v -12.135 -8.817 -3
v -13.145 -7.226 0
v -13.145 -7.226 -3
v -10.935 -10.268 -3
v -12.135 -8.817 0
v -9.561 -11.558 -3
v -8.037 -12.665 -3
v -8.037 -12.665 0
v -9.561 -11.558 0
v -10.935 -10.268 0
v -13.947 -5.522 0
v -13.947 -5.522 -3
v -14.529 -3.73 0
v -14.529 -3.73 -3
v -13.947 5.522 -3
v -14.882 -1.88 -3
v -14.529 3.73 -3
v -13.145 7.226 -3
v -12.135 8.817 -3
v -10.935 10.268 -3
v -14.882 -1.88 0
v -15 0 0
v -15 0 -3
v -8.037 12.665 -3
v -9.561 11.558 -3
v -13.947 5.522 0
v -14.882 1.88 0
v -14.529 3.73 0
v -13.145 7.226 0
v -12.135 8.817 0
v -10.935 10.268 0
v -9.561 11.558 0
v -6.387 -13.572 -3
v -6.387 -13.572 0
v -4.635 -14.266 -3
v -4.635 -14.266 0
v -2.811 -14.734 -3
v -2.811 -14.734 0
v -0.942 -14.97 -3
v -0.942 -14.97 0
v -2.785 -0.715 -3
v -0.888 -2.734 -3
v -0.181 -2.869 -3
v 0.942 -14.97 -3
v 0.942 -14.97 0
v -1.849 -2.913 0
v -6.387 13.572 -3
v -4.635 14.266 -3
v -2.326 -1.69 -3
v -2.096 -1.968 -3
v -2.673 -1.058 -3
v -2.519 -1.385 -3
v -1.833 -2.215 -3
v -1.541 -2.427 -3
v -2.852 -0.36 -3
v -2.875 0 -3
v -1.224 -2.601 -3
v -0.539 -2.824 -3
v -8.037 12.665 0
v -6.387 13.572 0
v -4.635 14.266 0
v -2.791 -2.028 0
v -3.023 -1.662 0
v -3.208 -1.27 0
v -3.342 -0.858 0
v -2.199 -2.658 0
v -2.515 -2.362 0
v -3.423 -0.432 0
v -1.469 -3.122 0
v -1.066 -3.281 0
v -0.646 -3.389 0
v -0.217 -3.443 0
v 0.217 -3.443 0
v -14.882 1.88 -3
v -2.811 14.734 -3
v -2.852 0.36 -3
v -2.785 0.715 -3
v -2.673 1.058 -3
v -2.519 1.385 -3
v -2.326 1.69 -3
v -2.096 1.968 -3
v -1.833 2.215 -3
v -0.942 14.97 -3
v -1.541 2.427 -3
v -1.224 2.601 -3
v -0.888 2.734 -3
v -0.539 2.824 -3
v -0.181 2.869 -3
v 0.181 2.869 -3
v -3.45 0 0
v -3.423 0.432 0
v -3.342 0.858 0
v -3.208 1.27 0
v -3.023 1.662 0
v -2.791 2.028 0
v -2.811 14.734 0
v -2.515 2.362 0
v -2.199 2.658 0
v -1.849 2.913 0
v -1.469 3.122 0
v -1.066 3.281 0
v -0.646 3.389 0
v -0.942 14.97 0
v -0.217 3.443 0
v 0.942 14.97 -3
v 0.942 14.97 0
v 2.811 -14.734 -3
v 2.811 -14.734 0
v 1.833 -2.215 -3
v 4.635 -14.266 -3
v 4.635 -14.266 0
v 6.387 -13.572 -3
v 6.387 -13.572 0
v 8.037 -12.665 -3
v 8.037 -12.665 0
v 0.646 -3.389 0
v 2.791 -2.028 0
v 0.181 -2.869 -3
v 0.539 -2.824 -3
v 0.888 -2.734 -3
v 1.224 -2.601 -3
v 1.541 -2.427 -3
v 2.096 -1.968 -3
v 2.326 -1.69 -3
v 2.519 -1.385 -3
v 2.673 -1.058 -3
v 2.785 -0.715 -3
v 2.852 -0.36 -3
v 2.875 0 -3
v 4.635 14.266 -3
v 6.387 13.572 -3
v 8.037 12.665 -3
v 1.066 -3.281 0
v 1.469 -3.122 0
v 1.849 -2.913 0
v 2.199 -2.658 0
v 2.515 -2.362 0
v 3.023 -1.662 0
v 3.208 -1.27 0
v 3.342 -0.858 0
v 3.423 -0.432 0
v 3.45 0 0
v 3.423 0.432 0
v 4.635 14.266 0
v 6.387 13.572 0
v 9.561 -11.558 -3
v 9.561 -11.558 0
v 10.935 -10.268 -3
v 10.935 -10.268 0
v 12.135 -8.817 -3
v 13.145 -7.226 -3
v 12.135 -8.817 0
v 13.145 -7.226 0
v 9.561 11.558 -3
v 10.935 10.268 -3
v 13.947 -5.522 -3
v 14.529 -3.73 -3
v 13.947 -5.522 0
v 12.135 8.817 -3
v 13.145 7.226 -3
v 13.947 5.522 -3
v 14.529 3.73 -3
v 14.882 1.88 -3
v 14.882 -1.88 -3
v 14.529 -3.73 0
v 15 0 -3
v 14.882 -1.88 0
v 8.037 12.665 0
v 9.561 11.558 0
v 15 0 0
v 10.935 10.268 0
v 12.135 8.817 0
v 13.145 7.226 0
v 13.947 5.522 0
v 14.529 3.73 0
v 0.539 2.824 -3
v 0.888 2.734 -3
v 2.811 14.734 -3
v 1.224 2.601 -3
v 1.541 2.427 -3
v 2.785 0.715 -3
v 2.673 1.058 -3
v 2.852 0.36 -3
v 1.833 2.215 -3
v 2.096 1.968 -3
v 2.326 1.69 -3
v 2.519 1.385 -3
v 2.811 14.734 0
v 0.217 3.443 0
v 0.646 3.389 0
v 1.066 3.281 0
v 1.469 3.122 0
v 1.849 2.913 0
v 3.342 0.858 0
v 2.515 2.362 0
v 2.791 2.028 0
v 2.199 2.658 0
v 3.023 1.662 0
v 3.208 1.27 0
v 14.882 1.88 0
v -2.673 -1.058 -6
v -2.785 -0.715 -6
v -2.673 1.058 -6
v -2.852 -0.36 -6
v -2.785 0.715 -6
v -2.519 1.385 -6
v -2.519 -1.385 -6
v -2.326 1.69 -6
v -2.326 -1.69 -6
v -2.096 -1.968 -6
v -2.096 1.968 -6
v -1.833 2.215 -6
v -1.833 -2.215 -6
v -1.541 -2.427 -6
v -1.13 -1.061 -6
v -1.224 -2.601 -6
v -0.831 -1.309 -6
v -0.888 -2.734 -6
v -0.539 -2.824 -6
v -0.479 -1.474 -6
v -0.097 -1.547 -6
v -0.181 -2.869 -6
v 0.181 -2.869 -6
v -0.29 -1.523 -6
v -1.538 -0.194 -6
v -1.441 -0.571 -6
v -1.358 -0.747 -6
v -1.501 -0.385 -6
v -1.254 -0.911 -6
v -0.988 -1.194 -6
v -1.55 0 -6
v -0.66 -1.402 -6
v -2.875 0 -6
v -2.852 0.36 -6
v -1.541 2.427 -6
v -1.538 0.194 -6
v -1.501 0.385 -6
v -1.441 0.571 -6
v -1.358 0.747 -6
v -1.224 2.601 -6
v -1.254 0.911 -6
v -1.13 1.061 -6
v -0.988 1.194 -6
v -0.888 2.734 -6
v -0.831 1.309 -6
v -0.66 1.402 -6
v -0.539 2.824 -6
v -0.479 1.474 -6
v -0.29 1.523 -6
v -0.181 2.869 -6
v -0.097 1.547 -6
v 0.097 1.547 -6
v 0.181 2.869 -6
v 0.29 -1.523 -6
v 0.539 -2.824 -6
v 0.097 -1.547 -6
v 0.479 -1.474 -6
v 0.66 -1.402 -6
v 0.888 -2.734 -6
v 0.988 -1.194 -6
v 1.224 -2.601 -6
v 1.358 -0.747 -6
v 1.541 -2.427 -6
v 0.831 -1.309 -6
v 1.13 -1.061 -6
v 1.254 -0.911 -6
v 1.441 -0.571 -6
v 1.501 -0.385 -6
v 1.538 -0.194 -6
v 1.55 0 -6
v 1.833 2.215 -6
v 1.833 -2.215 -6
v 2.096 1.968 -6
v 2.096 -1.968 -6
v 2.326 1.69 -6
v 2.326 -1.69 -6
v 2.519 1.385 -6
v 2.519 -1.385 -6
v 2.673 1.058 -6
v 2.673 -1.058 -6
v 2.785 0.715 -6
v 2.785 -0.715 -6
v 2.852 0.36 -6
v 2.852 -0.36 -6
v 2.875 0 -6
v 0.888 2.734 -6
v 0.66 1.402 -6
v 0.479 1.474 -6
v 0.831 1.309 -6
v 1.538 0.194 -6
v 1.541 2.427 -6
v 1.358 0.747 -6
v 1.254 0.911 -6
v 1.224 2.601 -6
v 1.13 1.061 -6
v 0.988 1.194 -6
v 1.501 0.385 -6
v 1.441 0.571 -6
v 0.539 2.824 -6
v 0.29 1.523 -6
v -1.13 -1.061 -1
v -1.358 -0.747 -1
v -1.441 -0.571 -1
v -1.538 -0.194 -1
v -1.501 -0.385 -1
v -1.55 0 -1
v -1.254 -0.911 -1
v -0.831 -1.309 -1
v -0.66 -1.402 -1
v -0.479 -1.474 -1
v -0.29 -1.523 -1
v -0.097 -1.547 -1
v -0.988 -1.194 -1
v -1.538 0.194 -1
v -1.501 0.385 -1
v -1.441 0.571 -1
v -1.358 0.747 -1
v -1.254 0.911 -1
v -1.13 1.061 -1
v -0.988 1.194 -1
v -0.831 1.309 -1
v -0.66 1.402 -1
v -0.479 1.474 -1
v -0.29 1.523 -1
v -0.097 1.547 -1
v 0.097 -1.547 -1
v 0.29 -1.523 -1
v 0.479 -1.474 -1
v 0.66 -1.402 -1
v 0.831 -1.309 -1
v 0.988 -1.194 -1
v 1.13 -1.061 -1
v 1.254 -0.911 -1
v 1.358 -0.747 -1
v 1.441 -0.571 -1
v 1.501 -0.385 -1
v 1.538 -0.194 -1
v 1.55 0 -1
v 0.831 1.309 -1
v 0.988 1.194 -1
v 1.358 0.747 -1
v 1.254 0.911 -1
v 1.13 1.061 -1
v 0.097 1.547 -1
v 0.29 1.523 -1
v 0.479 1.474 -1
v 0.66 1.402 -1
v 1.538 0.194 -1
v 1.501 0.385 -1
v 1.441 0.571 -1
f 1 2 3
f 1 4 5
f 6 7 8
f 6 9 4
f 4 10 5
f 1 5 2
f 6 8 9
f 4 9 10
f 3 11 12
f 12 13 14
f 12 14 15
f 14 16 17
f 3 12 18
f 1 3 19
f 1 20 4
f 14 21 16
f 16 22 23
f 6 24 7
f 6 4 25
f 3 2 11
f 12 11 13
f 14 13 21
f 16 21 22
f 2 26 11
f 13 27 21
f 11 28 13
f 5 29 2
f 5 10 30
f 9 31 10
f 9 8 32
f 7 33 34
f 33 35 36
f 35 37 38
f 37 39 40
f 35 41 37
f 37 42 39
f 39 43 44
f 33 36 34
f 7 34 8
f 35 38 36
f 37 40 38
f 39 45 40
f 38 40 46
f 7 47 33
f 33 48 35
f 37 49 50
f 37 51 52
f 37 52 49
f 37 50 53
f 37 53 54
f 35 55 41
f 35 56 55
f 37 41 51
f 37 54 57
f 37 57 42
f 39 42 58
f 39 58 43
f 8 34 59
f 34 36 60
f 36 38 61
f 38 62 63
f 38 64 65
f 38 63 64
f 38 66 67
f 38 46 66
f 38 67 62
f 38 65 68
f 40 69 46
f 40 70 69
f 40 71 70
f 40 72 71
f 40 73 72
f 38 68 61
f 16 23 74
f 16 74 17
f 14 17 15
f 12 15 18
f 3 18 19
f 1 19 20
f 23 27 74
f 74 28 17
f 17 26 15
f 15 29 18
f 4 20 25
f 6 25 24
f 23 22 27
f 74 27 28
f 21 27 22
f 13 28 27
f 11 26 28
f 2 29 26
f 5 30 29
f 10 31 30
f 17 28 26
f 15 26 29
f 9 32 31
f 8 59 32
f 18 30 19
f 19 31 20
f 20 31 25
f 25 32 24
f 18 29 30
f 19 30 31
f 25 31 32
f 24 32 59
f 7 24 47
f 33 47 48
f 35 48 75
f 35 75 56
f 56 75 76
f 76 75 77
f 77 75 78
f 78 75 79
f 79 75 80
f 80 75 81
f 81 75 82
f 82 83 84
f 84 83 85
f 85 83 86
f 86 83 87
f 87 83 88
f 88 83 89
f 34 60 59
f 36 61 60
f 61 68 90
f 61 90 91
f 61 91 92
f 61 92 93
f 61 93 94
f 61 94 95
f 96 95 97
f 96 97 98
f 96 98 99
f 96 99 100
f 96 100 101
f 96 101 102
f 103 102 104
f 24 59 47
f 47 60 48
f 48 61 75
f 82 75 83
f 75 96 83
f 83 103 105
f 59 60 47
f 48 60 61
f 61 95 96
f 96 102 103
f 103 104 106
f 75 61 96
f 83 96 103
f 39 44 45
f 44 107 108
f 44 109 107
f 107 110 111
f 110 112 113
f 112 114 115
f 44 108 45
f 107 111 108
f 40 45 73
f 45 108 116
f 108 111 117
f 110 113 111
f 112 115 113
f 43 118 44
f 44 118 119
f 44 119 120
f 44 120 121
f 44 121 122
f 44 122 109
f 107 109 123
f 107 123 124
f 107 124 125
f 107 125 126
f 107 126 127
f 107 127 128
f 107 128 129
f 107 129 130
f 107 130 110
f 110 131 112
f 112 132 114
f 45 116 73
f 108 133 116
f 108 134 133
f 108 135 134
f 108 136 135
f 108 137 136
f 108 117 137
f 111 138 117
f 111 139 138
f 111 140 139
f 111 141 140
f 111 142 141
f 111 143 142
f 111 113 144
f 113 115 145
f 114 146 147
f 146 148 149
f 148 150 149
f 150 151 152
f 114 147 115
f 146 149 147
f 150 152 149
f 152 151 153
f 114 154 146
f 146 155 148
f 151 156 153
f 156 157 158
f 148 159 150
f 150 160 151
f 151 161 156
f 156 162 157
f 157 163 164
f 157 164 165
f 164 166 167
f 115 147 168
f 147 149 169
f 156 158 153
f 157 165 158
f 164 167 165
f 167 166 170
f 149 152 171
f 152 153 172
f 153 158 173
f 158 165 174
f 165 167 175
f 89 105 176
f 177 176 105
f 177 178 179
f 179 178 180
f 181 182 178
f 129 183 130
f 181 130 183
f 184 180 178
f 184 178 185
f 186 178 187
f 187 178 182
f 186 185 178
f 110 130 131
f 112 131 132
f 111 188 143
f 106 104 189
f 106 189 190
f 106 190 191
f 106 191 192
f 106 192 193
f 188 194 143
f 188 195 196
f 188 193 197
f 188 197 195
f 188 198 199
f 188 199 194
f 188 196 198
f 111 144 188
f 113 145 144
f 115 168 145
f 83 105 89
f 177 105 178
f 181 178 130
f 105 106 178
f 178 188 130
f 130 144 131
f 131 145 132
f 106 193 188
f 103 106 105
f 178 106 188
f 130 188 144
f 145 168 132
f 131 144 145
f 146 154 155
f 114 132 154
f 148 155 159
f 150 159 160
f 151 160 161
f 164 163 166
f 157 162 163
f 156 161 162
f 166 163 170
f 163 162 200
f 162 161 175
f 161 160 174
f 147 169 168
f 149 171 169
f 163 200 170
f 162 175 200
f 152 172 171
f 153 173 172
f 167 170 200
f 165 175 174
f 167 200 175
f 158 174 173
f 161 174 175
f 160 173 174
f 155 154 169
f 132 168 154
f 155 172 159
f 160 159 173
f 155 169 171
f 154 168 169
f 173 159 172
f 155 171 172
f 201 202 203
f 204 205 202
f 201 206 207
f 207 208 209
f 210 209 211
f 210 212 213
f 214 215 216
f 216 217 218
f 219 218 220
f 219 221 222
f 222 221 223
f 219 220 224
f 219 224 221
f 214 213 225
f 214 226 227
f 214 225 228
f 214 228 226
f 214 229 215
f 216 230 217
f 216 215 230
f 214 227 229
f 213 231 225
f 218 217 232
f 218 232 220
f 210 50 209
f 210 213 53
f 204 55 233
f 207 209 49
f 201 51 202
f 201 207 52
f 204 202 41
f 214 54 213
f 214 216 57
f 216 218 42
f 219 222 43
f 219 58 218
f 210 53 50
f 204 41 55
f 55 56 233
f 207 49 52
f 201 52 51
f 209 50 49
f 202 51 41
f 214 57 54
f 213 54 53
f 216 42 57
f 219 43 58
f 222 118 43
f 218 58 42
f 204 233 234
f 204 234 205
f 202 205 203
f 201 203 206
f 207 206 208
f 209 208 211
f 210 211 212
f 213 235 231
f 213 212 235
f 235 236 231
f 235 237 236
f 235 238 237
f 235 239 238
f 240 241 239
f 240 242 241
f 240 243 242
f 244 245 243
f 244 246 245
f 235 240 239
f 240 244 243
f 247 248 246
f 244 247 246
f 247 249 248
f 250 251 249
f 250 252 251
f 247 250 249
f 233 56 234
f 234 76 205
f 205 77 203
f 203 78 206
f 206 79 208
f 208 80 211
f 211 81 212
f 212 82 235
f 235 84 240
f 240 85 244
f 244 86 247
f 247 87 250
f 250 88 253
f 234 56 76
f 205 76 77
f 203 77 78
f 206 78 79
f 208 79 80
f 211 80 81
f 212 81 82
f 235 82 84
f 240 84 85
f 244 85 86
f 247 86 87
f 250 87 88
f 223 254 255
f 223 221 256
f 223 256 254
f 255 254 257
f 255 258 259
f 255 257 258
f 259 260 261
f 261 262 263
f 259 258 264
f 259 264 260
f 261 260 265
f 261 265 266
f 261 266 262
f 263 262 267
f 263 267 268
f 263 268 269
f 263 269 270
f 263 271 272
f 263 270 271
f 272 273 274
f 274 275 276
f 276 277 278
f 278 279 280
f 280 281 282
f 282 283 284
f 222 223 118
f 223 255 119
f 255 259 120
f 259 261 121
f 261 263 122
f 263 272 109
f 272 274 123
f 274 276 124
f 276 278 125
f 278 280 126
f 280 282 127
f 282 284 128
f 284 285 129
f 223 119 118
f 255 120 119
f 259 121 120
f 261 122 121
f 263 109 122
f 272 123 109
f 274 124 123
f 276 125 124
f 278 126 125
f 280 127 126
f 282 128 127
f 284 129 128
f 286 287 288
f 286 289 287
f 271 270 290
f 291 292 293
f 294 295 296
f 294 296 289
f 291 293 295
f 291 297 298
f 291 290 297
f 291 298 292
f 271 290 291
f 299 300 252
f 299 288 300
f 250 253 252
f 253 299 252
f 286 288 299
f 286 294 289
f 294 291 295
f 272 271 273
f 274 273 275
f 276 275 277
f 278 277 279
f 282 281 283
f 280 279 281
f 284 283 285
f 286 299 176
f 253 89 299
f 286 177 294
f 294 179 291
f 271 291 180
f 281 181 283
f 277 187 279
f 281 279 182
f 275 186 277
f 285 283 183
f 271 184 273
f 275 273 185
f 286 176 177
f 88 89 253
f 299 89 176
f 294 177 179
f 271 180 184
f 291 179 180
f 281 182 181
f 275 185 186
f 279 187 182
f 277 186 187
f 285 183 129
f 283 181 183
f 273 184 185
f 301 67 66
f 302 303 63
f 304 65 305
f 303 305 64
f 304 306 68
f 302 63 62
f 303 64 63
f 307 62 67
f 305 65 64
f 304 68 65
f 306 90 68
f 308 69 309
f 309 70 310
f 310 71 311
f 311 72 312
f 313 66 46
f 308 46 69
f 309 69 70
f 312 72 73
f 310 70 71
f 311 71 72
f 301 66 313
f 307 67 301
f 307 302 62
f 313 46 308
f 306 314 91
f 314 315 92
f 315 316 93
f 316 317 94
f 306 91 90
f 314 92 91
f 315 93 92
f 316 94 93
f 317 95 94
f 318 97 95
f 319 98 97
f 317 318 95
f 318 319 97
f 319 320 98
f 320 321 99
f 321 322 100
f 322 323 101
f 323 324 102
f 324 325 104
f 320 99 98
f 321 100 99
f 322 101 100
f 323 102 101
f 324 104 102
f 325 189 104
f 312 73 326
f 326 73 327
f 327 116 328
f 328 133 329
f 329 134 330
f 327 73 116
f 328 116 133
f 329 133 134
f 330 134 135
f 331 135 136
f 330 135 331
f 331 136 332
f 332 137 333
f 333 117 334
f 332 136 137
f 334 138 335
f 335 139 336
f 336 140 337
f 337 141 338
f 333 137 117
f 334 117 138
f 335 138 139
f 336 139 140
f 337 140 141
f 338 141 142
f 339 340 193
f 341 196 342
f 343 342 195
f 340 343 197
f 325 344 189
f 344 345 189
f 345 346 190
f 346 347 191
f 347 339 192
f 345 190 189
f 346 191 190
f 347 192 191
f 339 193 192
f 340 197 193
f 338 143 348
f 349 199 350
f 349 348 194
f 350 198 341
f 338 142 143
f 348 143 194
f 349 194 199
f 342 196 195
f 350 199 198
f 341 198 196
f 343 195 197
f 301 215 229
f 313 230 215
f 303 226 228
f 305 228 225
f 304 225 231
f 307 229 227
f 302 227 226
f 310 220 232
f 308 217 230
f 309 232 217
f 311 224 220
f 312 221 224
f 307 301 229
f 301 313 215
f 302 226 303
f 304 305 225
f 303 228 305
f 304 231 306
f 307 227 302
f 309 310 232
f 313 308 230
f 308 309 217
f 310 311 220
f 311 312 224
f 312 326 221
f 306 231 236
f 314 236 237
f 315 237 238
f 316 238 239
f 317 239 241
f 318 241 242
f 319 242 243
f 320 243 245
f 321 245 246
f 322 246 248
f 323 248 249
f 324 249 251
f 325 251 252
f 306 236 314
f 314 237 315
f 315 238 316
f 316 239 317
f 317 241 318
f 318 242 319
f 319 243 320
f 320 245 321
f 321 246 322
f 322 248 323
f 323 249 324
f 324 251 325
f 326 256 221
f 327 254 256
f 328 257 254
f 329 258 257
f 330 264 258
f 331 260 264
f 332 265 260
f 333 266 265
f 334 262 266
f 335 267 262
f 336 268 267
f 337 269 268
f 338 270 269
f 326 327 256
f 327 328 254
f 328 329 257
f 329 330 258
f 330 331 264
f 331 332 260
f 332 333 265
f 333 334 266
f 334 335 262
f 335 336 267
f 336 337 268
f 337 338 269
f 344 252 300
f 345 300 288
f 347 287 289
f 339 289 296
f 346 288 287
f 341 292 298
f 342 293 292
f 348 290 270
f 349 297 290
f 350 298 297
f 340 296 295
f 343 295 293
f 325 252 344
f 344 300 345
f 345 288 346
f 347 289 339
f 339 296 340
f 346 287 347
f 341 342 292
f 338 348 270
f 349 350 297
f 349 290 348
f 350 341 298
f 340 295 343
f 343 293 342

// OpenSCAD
$fn = 50;

difference() {
	union() {
		translate(v = [0, 0, -3.0]) {
			cylinder(h = 3, r = 15.0);
		}
		#translate(v = [0, 0, -6.0]) {
			cylinder(h = 6, r = 2.875);
		}
	}
	union() {
		translate(v = [0, 0, 0]) {
			rotate(a = [0, 0, 0]) {
				difference() {
					union() {
						translate(v = [0, 0, -6.0]) {
							cylinder(h = 6, r = 1.25);
						}
						translate(v = [0, 0, -1.0]) {
							cylinder(h = 1.0, r1 = 1.55, r2 = 3.45);
						}
						translate(v = [0, 0, -6.0]) {
							cylinder(h = 6, r = 1.55);
						}
						translate(v = [0, 0, -6.0]) {
							cylinder(h = 6, r = 1.25);
						}
					}
					union();
				}
			}
		}
	}
}
